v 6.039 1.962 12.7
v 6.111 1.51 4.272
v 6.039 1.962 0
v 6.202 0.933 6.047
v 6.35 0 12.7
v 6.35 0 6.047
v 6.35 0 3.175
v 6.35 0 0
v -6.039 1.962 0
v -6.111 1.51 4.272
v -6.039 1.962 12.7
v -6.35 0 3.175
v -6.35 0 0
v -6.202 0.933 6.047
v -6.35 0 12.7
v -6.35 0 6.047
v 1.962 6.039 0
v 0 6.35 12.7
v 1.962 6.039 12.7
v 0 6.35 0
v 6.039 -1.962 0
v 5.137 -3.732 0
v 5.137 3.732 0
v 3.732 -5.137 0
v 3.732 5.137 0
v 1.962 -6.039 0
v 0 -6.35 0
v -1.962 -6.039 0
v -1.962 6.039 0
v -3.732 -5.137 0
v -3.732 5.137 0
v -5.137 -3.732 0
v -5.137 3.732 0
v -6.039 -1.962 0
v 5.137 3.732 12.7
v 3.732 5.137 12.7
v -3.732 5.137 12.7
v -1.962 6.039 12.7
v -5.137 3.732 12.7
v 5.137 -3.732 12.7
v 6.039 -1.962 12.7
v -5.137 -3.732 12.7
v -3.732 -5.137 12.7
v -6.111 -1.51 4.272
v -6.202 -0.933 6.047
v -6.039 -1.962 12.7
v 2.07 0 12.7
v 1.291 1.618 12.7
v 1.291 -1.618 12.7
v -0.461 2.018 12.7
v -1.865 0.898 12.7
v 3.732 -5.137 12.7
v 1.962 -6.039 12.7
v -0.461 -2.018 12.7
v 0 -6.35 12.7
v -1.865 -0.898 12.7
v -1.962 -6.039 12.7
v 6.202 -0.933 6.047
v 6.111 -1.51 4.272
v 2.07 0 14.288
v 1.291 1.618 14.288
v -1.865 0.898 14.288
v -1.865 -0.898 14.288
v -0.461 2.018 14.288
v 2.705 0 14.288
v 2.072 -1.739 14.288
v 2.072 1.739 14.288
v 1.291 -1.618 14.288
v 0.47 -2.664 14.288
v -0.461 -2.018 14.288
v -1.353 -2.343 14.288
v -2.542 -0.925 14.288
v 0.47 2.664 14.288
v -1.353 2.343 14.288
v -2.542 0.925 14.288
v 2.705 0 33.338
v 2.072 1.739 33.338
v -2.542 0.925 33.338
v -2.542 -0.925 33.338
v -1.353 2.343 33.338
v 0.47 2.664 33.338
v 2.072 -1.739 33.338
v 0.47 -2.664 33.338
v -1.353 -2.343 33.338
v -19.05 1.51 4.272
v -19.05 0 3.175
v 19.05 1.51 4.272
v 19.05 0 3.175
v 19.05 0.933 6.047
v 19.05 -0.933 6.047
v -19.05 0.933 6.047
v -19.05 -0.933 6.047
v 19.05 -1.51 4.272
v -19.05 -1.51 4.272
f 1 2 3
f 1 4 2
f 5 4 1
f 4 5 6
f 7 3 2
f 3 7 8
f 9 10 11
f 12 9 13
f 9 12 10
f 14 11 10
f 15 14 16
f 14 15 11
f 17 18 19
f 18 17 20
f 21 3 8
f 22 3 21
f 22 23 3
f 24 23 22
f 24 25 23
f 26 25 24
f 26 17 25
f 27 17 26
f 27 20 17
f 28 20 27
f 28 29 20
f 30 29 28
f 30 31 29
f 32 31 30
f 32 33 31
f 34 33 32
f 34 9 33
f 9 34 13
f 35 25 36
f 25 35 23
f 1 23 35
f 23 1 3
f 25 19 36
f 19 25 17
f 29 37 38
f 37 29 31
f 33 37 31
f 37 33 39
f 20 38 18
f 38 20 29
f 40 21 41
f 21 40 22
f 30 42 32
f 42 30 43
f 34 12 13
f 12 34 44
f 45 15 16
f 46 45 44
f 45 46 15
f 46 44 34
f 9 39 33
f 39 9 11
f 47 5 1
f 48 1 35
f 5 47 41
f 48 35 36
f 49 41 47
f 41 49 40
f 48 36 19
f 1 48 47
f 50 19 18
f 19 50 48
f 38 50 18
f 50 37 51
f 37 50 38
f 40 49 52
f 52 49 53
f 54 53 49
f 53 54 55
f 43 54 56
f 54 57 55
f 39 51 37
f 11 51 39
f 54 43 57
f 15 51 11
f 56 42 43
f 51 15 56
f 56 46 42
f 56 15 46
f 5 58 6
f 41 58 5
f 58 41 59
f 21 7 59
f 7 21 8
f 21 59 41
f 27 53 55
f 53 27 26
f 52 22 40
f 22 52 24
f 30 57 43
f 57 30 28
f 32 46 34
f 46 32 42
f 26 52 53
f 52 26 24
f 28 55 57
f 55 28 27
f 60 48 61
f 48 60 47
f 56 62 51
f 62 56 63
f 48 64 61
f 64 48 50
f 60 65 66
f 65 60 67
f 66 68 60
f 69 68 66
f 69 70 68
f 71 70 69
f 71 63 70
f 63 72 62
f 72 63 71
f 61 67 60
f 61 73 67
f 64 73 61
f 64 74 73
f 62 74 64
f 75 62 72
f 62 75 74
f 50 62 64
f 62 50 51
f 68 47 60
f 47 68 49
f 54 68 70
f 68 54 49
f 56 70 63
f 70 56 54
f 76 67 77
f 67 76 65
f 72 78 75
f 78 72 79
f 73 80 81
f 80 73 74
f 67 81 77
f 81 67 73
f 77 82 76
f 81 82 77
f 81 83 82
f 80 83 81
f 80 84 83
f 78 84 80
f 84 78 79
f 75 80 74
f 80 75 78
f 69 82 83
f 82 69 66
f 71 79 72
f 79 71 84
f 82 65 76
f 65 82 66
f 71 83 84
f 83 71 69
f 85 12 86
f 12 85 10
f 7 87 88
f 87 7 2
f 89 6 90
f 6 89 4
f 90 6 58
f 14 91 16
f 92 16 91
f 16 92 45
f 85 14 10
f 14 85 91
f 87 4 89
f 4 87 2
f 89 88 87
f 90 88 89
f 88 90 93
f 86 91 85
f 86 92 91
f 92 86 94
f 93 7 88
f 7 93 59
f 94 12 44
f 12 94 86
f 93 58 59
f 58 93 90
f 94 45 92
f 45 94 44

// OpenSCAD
inch=25.4;

module guide_lock(sections=[
		       [1/2,         8, 0],
		       [0.213-0.05,  1, 8],
		       [0.213,      12, 9]]) {
     union() {
	  for (section=sections) {
	       translate([0,0,section[2]*inch/16]) {
		    cylinder(d=section[0]*inch, h=section[1]*inch/16);
	       }
	  }

	  translate([0,0,3/16*inch]) rotate([0,90,0]) {
	       cylinder(d=inch/8, h=(1+1/2)*inch, center=true);
	  }
     }
     
}

guide_lock();
